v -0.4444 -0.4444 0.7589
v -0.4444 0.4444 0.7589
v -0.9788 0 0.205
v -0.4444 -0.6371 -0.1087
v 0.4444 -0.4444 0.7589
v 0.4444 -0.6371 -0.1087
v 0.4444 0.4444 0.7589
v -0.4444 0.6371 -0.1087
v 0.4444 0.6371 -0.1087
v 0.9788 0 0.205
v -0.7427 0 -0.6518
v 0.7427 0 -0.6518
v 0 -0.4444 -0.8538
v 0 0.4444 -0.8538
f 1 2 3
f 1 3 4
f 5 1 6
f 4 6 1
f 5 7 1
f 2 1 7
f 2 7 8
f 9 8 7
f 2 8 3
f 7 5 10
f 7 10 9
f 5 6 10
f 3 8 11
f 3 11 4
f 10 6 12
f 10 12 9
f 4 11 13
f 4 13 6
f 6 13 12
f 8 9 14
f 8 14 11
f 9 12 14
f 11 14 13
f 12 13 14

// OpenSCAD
polyhedron( points = [[-0.44436584357071, -0.444365843477558, 0.758930367687115], [-0.444365843530809, 0.444365843613123, 0.758930367687115], [0.444365843480077, 0.444365843533324, 0.758930367687115], [0.444365843440173, -0.444365843477558, 0.758930367687115], [-0.97875645746076, 4.66432223967286e-11, 0.205026332291215], [0.97875645745558, -1.91460361723298e-11, 0.205026332428308], [-0.444365843530809, -0.637083044444618, -0.108654839638569], [0.444365843434063, -0.637083044451945, -0.108654839671556], [-0.444365843473603, 0.63708304450638, -0.108654839724193], [0.444365843537275, 0.637083044409277, -0.108654839646289], [-0.742675769160147, 8.61528706723238e-12, -0.651775815294615], [0.742675769355185, -3.62034461448178e-11, -0.651775815220984], [-7.46517115768899e-11, -0.444367310427826, -0.853801573147888], [9.91353480377039e-11, 0.444367310217492, -0.853801573123892]], faces = [[0, 1, 4], [0, 4, 6], [0, 6, 7, 3], [0, 3, 2, 1], [1, 2, 9, 8], [1, 8, 4], [2, 3, 5], [2, 5, 9], [3, 7, 5], [4, 8, 10], [4, 10, 6], [5, 7, 11], [5, 11, 9], [6, 10, 12], [6, 12, 7], [7, 12, 11], [8, 9, 13], [8, 13, 10], [9, 11, 13], [10, 13, 12], [11, 12, 13]]);
